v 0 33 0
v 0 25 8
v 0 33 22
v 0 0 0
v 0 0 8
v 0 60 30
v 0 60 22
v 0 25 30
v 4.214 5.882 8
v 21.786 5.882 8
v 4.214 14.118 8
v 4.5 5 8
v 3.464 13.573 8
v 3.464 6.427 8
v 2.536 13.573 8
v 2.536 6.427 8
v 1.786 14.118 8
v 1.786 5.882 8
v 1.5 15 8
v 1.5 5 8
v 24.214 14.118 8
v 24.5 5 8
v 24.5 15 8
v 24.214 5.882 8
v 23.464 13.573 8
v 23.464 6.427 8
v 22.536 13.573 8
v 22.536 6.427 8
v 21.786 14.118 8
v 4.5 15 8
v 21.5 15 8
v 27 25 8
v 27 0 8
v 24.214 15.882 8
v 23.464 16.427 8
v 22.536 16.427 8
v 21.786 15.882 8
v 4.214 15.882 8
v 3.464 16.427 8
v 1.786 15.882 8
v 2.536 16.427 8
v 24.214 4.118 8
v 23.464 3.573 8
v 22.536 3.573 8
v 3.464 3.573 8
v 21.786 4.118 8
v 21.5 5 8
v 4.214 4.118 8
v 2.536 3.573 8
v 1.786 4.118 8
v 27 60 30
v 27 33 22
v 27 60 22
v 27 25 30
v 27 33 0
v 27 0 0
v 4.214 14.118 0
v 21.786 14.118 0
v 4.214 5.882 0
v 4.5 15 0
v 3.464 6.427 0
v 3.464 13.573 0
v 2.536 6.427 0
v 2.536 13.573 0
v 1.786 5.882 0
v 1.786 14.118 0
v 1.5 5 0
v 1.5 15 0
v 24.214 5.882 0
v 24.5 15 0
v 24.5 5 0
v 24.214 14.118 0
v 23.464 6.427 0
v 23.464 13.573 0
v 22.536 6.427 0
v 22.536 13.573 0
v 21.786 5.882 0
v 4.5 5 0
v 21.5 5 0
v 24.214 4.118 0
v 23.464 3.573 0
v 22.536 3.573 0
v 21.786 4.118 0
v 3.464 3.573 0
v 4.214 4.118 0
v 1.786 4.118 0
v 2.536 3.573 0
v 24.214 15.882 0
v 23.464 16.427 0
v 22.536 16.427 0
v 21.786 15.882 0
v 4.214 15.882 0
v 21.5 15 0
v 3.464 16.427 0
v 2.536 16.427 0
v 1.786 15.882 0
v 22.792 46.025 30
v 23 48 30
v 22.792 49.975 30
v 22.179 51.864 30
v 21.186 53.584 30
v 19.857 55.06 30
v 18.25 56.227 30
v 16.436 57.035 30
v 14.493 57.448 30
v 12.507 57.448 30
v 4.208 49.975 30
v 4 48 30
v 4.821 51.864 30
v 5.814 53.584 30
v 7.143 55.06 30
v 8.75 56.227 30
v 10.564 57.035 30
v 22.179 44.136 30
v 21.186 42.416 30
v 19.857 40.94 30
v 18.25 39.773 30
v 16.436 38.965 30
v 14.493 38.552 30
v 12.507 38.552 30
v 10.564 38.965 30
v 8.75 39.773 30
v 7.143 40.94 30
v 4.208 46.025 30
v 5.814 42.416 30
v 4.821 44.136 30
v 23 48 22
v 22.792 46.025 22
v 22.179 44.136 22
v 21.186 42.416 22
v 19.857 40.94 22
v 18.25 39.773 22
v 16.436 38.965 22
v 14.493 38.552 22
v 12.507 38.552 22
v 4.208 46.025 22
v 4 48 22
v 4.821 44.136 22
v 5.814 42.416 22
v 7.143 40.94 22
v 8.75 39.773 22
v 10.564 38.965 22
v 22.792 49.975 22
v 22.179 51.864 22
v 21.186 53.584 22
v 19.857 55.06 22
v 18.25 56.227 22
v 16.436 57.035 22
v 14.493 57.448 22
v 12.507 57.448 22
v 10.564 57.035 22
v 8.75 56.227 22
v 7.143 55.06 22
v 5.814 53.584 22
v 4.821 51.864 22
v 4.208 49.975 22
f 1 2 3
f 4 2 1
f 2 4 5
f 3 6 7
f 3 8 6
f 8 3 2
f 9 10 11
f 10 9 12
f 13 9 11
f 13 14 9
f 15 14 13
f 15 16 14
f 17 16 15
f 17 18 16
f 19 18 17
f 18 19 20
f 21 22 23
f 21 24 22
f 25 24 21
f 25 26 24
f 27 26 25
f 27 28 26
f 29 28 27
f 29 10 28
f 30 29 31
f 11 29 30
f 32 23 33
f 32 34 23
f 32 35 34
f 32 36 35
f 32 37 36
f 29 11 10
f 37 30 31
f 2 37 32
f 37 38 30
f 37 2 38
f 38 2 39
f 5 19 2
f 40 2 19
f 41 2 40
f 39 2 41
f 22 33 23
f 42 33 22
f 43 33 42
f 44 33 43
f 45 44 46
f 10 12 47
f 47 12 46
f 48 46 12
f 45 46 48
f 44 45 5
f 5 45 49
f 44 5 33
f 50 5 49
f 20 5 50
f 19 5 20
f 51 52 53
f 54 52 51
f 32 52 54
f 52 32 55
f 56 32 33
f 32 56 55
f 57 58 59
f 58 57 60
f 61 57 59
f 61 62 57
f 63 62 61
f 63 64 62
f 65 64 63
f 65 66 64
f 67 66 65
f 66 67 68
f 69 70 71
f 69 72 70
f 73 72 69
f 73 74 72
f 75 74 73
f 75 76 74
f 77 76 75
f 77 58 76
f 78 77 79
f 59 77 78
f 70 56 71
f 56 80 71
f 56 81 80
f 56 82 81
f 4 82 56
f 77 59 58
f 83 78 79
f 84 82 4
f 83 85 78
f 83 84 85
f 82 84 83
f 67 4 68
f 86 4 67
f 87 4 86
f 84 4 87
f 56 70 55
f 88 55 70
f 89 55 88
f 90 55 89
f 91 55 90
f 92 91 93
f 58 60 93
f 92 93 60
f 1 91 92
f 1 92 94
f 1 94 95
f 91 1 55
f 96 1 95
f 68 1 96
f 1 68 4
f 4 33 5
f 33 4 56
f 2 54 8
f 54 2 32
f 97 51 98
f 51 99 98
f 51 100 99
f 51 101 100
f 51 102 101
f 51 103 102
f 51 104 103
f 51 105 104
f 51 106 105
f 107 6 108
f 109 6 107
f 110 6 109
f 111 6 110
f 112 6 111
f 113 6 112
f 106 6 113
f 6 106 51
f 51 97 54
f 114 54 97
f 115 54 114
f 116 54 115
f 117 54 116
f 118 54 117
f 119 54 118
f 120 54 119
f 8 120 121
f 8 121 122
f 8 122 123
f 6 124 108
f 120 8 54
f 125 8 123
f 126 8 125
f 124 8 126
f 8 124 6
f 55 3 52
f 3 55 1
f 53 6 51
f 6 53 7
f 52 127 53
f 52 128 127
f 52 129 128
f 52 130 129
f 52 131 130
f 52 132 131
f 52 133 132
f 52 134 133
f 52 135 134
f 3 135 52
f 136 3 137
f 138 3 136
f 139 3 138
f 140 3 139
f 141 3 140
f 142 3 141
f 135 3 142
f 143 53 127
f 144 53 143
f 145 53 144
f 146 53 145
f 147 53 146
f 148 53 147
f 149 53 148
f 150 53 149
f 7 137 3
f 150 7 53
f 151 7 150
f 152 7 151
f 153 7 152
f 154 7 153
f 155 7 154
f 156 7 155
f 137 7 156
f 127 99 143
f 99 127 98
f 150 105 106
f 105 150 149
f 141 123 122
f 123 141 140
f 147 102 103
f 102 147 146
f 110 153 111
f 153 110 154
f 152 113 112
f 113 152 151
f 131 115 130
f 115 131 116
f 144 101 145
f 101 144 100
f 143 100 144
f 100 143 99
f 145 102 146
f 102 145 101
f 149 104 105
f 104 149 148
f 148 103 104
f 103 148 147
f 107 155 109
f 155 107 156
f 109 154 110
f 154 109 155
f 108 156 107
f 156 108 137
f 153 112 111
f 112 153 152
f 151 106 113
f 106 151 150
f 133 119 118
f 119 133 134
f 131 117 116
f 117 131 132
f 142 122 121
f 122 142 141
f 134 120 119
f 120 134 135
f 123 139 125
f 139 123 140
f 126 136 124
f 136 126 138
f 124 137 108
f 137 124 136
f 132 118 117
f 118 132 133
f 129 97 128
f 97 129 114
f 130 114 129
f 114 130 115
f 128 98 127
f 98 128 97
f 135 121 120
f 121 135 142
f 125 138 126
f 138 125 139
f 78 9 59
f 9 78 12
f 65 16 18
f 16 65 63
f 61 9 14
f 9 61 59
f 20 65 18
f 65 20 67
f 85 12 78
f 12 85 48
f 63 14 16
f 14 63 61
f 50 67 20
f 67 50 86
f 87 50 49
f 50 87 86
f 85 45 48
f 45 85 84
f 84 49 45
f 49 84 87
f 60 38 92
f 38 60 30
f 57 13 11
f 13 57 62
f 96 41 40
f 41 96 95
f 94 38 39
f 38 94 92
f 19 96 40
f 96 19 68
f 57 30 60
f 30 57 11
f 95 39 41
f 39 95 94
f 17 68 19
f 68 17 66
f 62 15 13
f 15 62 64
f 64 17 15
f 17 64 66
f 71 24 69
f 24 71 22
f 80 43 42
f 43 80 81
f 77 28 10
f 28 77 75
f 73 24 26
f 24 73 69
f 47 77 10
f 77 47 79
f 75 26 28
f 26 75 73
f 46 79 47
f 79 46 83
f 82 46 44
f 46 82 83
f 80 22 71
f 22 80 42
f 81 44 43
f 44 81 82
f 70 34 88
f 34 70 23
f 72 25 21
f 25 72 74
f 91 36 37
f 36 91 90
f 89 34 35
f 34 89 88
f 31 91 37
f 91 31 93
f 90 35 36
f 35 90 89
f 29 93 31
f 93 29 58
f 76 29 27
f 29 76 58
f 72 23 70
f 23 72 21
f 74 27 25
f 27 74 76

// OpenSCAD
width = 27;
m3holedistance =20;
depthtop=25;
difference() {
    union() {
        cube([width,depthtop,8],false);
        
        translate([0,depthtop,0]) 
        cube([width,8,30],false);
        
        translate([0,depthtop+8,22]) 
        cube([width,27,8],false);
    }
    translate([0+width/2,depthtop+8+30/2,22]) 
    cylinder(h=100,d=19,center=false);
    
    translate([3,5,0]) 
    cylinder(h=100,d=3,center=false,$fn=10);
    
    translate([3,15,0]) 
    cylinder(h=100,d=3,center=false,$fn=10);
    
    translate([3+m3holedistance,5,0]) 
    cylinder(h=100,d=3,center=false,$fn=10);
    
    translate([3+m3holedistance,15,0]) 
    cylinder(h=100,d=3,center=false,$fn=10);
}
